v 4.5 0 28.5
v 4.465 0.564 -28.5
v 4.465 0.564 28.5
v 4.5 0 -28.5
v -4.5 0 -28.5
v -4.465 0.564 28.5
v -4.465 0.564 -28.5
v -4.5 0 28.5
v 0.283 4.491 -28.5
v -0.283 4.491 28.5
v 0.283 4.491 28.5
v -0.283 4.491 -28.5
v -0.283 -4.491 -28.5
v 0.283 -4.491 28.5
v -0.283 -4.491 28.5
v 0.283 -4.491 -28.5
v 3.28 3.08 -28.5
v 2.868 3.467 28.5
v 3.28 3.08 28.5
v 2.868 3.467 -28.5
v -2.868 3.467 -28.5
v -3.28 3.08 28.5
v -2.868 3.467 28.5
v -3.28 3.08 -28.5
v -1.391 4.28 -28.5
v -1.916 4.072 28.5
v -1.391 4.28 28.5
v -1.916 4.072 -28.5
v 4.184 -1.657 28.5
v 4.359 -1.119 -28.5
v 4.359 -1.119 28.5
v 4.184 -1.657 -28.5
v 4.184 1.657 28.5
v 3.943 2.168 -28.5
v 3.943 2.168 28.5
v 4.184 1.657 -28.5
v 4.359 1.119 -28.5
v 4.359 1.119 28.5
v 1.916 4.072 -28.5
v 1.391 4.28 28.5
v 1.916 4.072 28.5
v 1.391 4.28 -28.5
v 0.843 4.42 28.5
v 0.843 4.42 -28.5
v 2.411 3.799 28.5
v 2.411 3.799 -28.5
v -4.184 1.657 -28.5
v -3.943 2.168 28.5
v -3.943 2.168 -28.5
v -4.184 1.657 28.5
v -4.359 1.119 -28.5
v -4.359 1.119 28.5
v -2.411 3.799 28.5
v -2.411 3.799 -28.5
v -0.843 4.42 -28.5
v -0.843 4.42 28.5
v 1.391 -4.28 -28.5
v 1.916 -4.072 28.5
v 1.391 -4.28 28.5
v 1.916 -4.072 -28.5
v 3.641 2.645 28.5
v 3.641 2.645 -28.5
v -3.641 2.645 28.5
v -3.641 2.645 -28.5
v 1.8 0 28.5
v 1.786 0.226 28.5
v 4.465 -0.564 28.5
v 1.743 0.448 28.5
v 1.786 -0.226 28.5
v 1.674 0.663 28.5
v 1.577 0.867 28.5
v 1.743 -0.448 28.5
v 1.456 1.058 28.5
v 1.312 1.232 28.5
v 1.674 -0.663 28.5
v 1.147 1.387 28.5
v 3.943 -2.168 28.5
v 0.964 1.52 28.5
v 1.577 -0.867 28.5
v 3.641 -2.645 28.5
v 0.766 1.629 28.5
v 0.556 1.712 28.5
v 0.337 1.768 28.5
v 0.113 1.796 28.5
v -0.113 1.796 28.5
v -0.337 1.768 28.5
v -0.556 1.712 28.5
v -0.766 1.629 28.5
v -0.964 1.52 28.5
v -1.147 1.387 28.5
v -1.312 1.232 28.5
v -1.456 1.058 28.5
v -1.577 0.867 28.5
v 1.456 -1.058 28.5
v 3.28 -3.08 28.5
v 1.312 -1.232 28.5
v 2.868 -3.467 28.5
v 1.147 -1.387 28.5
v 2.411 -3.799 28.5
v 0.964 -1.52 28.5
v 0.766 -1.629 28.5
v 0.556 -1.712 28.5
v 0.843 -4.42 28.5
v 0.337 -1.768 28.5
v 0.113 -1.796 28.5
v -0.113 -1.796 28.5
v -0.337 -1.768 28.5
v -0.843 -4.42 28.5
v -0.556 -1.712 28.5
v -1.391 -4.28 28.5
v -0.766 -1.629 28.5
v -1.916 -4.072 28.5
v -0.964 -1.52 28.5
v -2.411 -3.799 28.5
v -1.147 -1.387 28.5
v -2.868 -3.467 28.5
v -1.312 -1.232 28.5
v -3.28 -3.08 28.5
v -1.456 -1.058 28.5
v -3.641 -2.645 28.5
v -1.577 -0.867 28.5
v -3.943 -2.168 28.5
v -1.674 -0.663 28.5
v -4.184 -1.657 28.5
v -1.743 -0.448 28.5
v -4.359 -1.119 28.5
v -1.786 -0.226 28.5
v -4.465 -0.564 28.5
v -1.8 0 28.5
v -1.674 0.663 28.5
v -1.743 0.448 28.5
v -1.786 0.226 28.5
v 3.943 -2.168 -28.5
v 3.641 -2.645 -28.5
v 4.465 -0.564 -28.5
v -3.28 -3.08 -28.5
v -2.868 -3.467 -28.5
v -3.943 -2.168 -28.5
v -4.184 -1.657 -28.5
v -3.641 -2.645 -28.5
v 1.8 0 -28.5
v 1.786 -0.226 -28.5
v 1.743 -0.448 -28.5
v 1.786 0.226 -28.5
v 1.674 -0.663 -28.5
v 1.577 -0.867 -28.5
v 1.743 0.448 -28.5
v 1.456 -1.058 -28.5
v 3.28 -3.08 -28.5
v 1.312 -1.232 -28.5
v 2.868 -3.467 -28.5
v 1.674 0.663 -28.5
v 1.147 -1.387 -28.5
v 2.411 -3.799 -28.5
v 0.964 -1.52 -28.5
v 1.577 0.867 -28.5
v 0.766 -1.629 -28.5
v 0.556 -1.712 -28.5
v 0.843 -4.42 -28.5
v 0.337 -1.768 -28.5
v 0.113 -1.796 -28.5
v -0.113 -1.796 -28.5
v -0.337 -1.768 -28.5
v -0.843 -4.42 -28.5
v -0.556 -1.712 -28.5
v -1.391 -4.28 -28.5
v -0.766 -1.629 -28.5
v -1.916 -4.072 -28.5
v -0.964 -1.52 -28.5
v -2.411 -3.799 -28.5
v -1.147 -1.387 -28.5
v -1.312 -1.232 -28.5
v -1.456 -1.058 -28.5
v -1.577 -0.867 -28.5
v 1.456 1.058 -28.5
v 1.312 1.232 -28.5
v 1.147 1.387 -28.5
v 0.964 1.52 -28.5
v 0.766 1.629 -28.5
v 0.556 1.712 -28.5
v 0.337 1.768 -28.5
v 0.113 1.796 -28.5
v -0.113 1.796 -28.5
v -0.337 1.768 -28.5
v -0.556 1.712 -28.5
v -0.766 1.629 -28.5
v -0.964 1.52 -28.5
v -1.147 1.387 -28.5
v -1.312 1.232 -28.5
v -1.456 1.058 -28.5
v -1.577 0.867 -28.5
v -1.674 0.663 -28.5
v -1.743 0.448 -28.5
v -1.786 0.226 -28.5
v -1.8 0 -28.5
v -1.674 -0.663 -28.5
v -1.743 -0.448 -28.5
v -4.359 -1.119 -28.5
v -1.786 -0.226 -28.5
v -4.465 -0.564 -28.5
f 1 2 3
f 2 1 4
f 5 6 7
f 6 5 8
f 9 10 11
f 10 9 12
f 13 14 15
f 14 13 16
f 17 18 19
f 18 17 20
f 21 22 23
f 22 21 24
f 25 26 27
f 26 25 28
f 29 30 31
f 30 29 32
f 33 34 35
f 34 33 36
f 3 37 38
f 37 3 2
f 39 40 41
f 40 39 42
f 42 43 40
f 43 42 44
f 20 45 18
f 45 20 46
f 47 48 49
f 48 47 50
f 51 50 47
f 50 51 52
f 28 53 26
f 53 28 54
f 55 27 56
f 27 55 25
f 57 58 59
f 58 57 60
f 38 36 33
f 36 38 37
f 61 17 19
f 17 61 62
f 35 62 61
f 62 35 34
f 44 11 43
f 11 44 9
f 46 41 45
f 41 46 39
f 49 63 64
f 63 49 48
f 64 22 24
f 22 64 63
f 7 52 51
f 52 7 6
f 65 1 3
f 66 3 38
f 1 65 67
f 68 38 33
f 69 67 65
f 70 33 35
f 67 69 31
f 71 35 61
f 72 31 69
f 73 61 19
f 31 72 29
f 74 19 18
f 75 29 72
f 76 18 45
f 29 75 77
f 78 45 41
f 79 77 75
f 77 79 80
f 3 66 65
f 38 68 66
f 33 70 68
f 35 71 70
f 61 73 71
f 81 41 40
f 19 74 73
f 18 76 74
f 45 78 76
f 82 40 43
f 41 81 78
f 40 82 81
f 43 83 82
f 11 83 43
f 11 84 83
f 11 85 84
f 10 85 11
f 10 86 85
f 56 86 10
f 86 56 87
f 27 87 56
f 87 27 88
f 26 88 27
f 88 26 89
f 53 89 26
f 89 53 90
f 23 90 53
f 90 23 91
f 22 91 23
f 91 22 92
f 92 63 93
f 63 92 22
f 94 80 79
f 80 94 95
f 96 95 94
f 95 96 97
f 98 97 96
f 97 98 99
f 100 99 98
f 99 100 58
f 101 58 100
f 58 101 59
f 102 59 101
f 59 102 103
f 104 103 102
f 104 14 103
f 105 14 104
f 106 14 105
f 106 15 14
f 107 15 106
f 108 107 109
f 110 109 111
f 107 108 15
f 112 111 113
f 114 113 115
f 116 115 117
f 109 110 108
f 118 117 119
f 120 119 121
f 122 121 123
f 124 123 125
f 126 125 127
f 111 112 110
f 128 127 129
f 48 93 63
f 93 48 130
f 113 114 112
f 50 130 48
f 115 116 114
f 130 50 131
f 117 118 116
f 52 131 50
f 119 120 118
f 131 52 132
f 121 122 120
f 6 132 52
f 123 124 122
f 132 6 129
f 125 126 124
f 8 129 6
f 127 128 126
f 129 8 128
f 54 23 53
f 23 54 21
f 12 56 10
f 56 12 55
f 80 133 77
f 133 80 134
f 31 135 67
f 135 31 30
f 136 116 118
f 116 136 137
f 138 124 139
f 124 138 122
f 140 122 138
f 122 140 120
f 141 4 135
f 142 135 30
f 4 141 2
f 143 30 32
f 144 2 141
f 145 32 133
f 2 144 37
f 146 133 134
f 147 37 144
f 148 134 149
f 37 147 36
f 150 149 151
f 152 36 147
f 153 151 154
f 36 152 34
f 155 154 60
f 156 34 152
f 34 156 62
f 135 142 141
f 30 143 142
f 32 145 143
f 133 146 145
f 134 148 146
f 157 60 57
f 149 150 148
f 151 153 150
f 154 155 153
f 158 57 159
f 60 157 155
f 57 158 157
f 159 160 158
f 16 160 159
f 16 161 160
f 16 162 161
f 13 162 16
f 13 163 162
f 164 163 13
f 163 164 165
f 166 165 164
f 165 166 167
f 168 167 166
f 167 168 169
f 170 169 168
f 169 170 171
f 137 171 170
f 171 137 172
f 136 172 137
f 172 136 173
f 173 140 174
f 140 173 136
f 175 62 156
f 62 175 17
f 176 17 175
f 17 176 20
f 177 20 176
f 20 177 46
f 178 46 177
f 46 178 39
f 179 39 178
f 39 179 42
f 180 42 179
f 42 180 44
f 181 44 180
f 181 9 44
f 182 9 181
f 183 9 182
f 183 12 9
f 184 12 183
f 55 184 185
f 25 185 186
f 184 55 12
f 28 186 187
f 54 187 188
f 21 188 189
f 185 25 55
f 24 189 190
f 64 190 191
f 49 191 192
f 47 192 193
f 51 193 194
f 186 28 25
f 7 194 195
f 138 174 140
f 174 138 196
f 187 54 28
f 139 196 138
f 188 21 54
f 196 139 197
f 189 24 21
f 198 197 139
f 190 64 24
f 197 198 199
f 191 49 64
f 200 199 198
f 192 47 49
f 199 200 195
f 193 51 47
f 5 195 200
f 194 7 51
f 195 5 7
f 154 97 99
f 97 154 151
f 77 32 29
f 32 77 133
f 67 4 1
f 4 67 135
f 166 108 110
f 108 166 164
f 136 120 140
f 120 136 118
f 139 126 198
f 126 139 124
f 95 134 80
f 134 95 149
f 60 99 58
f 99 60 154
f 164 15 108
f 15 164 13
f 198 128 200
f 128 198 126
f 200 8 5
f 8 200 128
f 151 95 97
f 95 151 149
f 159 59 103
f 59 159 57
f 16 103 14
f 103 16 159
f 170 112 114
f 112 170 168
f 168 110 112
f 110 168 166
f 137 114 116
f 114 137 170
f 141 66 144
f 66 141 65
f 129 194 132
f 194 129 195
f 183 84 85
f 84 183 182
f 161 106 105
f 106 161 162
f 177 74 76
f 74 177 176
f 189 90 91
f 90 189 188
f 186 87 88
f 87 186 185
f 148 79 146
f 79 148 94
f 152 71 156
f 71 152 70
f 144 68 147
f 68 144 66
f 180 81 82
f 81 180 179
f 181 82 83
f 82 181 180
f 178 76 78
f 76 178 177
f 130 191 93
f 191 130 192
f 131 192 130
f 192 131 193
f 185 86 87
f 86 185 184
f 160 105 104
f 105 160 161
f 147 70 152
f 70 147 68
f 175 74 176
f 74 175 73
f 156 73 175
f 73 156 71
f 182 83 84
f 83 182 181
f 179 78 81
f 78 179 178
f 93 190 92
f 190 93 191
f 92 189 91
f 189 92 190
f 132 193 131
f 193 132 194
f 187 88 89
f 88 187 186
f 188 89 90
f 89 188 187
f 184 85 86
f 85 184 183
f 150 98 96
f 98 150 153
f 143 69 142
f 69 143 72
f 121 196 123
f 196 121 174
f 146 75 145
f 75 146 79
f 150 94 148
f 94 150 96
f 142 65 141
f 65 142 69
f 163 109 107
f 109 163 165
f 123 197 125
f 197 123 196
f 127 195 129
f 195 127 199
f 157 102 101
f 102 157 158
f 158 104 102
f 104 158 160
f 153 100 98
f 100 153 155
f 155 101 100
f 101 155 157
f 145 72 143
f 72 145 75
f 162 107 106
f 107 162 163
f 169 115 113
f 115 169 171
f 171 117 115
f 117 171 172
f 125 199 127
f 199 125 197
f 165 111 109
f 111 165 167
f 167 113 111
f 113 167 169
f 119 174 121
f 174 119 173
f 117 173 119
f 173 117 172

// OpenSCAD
$fn = 50;


difference() {
	union() {
		translate(v = [0, 0, -28.5000000000]) {
			cylinder(h = 57, r = 4.5000000000);
		}
	}
	union() {
		translate(v = [0, 0, -100.0000000000]) {
			cylinder(h = 200, r = 1.8000000000);
		}
	}
}
